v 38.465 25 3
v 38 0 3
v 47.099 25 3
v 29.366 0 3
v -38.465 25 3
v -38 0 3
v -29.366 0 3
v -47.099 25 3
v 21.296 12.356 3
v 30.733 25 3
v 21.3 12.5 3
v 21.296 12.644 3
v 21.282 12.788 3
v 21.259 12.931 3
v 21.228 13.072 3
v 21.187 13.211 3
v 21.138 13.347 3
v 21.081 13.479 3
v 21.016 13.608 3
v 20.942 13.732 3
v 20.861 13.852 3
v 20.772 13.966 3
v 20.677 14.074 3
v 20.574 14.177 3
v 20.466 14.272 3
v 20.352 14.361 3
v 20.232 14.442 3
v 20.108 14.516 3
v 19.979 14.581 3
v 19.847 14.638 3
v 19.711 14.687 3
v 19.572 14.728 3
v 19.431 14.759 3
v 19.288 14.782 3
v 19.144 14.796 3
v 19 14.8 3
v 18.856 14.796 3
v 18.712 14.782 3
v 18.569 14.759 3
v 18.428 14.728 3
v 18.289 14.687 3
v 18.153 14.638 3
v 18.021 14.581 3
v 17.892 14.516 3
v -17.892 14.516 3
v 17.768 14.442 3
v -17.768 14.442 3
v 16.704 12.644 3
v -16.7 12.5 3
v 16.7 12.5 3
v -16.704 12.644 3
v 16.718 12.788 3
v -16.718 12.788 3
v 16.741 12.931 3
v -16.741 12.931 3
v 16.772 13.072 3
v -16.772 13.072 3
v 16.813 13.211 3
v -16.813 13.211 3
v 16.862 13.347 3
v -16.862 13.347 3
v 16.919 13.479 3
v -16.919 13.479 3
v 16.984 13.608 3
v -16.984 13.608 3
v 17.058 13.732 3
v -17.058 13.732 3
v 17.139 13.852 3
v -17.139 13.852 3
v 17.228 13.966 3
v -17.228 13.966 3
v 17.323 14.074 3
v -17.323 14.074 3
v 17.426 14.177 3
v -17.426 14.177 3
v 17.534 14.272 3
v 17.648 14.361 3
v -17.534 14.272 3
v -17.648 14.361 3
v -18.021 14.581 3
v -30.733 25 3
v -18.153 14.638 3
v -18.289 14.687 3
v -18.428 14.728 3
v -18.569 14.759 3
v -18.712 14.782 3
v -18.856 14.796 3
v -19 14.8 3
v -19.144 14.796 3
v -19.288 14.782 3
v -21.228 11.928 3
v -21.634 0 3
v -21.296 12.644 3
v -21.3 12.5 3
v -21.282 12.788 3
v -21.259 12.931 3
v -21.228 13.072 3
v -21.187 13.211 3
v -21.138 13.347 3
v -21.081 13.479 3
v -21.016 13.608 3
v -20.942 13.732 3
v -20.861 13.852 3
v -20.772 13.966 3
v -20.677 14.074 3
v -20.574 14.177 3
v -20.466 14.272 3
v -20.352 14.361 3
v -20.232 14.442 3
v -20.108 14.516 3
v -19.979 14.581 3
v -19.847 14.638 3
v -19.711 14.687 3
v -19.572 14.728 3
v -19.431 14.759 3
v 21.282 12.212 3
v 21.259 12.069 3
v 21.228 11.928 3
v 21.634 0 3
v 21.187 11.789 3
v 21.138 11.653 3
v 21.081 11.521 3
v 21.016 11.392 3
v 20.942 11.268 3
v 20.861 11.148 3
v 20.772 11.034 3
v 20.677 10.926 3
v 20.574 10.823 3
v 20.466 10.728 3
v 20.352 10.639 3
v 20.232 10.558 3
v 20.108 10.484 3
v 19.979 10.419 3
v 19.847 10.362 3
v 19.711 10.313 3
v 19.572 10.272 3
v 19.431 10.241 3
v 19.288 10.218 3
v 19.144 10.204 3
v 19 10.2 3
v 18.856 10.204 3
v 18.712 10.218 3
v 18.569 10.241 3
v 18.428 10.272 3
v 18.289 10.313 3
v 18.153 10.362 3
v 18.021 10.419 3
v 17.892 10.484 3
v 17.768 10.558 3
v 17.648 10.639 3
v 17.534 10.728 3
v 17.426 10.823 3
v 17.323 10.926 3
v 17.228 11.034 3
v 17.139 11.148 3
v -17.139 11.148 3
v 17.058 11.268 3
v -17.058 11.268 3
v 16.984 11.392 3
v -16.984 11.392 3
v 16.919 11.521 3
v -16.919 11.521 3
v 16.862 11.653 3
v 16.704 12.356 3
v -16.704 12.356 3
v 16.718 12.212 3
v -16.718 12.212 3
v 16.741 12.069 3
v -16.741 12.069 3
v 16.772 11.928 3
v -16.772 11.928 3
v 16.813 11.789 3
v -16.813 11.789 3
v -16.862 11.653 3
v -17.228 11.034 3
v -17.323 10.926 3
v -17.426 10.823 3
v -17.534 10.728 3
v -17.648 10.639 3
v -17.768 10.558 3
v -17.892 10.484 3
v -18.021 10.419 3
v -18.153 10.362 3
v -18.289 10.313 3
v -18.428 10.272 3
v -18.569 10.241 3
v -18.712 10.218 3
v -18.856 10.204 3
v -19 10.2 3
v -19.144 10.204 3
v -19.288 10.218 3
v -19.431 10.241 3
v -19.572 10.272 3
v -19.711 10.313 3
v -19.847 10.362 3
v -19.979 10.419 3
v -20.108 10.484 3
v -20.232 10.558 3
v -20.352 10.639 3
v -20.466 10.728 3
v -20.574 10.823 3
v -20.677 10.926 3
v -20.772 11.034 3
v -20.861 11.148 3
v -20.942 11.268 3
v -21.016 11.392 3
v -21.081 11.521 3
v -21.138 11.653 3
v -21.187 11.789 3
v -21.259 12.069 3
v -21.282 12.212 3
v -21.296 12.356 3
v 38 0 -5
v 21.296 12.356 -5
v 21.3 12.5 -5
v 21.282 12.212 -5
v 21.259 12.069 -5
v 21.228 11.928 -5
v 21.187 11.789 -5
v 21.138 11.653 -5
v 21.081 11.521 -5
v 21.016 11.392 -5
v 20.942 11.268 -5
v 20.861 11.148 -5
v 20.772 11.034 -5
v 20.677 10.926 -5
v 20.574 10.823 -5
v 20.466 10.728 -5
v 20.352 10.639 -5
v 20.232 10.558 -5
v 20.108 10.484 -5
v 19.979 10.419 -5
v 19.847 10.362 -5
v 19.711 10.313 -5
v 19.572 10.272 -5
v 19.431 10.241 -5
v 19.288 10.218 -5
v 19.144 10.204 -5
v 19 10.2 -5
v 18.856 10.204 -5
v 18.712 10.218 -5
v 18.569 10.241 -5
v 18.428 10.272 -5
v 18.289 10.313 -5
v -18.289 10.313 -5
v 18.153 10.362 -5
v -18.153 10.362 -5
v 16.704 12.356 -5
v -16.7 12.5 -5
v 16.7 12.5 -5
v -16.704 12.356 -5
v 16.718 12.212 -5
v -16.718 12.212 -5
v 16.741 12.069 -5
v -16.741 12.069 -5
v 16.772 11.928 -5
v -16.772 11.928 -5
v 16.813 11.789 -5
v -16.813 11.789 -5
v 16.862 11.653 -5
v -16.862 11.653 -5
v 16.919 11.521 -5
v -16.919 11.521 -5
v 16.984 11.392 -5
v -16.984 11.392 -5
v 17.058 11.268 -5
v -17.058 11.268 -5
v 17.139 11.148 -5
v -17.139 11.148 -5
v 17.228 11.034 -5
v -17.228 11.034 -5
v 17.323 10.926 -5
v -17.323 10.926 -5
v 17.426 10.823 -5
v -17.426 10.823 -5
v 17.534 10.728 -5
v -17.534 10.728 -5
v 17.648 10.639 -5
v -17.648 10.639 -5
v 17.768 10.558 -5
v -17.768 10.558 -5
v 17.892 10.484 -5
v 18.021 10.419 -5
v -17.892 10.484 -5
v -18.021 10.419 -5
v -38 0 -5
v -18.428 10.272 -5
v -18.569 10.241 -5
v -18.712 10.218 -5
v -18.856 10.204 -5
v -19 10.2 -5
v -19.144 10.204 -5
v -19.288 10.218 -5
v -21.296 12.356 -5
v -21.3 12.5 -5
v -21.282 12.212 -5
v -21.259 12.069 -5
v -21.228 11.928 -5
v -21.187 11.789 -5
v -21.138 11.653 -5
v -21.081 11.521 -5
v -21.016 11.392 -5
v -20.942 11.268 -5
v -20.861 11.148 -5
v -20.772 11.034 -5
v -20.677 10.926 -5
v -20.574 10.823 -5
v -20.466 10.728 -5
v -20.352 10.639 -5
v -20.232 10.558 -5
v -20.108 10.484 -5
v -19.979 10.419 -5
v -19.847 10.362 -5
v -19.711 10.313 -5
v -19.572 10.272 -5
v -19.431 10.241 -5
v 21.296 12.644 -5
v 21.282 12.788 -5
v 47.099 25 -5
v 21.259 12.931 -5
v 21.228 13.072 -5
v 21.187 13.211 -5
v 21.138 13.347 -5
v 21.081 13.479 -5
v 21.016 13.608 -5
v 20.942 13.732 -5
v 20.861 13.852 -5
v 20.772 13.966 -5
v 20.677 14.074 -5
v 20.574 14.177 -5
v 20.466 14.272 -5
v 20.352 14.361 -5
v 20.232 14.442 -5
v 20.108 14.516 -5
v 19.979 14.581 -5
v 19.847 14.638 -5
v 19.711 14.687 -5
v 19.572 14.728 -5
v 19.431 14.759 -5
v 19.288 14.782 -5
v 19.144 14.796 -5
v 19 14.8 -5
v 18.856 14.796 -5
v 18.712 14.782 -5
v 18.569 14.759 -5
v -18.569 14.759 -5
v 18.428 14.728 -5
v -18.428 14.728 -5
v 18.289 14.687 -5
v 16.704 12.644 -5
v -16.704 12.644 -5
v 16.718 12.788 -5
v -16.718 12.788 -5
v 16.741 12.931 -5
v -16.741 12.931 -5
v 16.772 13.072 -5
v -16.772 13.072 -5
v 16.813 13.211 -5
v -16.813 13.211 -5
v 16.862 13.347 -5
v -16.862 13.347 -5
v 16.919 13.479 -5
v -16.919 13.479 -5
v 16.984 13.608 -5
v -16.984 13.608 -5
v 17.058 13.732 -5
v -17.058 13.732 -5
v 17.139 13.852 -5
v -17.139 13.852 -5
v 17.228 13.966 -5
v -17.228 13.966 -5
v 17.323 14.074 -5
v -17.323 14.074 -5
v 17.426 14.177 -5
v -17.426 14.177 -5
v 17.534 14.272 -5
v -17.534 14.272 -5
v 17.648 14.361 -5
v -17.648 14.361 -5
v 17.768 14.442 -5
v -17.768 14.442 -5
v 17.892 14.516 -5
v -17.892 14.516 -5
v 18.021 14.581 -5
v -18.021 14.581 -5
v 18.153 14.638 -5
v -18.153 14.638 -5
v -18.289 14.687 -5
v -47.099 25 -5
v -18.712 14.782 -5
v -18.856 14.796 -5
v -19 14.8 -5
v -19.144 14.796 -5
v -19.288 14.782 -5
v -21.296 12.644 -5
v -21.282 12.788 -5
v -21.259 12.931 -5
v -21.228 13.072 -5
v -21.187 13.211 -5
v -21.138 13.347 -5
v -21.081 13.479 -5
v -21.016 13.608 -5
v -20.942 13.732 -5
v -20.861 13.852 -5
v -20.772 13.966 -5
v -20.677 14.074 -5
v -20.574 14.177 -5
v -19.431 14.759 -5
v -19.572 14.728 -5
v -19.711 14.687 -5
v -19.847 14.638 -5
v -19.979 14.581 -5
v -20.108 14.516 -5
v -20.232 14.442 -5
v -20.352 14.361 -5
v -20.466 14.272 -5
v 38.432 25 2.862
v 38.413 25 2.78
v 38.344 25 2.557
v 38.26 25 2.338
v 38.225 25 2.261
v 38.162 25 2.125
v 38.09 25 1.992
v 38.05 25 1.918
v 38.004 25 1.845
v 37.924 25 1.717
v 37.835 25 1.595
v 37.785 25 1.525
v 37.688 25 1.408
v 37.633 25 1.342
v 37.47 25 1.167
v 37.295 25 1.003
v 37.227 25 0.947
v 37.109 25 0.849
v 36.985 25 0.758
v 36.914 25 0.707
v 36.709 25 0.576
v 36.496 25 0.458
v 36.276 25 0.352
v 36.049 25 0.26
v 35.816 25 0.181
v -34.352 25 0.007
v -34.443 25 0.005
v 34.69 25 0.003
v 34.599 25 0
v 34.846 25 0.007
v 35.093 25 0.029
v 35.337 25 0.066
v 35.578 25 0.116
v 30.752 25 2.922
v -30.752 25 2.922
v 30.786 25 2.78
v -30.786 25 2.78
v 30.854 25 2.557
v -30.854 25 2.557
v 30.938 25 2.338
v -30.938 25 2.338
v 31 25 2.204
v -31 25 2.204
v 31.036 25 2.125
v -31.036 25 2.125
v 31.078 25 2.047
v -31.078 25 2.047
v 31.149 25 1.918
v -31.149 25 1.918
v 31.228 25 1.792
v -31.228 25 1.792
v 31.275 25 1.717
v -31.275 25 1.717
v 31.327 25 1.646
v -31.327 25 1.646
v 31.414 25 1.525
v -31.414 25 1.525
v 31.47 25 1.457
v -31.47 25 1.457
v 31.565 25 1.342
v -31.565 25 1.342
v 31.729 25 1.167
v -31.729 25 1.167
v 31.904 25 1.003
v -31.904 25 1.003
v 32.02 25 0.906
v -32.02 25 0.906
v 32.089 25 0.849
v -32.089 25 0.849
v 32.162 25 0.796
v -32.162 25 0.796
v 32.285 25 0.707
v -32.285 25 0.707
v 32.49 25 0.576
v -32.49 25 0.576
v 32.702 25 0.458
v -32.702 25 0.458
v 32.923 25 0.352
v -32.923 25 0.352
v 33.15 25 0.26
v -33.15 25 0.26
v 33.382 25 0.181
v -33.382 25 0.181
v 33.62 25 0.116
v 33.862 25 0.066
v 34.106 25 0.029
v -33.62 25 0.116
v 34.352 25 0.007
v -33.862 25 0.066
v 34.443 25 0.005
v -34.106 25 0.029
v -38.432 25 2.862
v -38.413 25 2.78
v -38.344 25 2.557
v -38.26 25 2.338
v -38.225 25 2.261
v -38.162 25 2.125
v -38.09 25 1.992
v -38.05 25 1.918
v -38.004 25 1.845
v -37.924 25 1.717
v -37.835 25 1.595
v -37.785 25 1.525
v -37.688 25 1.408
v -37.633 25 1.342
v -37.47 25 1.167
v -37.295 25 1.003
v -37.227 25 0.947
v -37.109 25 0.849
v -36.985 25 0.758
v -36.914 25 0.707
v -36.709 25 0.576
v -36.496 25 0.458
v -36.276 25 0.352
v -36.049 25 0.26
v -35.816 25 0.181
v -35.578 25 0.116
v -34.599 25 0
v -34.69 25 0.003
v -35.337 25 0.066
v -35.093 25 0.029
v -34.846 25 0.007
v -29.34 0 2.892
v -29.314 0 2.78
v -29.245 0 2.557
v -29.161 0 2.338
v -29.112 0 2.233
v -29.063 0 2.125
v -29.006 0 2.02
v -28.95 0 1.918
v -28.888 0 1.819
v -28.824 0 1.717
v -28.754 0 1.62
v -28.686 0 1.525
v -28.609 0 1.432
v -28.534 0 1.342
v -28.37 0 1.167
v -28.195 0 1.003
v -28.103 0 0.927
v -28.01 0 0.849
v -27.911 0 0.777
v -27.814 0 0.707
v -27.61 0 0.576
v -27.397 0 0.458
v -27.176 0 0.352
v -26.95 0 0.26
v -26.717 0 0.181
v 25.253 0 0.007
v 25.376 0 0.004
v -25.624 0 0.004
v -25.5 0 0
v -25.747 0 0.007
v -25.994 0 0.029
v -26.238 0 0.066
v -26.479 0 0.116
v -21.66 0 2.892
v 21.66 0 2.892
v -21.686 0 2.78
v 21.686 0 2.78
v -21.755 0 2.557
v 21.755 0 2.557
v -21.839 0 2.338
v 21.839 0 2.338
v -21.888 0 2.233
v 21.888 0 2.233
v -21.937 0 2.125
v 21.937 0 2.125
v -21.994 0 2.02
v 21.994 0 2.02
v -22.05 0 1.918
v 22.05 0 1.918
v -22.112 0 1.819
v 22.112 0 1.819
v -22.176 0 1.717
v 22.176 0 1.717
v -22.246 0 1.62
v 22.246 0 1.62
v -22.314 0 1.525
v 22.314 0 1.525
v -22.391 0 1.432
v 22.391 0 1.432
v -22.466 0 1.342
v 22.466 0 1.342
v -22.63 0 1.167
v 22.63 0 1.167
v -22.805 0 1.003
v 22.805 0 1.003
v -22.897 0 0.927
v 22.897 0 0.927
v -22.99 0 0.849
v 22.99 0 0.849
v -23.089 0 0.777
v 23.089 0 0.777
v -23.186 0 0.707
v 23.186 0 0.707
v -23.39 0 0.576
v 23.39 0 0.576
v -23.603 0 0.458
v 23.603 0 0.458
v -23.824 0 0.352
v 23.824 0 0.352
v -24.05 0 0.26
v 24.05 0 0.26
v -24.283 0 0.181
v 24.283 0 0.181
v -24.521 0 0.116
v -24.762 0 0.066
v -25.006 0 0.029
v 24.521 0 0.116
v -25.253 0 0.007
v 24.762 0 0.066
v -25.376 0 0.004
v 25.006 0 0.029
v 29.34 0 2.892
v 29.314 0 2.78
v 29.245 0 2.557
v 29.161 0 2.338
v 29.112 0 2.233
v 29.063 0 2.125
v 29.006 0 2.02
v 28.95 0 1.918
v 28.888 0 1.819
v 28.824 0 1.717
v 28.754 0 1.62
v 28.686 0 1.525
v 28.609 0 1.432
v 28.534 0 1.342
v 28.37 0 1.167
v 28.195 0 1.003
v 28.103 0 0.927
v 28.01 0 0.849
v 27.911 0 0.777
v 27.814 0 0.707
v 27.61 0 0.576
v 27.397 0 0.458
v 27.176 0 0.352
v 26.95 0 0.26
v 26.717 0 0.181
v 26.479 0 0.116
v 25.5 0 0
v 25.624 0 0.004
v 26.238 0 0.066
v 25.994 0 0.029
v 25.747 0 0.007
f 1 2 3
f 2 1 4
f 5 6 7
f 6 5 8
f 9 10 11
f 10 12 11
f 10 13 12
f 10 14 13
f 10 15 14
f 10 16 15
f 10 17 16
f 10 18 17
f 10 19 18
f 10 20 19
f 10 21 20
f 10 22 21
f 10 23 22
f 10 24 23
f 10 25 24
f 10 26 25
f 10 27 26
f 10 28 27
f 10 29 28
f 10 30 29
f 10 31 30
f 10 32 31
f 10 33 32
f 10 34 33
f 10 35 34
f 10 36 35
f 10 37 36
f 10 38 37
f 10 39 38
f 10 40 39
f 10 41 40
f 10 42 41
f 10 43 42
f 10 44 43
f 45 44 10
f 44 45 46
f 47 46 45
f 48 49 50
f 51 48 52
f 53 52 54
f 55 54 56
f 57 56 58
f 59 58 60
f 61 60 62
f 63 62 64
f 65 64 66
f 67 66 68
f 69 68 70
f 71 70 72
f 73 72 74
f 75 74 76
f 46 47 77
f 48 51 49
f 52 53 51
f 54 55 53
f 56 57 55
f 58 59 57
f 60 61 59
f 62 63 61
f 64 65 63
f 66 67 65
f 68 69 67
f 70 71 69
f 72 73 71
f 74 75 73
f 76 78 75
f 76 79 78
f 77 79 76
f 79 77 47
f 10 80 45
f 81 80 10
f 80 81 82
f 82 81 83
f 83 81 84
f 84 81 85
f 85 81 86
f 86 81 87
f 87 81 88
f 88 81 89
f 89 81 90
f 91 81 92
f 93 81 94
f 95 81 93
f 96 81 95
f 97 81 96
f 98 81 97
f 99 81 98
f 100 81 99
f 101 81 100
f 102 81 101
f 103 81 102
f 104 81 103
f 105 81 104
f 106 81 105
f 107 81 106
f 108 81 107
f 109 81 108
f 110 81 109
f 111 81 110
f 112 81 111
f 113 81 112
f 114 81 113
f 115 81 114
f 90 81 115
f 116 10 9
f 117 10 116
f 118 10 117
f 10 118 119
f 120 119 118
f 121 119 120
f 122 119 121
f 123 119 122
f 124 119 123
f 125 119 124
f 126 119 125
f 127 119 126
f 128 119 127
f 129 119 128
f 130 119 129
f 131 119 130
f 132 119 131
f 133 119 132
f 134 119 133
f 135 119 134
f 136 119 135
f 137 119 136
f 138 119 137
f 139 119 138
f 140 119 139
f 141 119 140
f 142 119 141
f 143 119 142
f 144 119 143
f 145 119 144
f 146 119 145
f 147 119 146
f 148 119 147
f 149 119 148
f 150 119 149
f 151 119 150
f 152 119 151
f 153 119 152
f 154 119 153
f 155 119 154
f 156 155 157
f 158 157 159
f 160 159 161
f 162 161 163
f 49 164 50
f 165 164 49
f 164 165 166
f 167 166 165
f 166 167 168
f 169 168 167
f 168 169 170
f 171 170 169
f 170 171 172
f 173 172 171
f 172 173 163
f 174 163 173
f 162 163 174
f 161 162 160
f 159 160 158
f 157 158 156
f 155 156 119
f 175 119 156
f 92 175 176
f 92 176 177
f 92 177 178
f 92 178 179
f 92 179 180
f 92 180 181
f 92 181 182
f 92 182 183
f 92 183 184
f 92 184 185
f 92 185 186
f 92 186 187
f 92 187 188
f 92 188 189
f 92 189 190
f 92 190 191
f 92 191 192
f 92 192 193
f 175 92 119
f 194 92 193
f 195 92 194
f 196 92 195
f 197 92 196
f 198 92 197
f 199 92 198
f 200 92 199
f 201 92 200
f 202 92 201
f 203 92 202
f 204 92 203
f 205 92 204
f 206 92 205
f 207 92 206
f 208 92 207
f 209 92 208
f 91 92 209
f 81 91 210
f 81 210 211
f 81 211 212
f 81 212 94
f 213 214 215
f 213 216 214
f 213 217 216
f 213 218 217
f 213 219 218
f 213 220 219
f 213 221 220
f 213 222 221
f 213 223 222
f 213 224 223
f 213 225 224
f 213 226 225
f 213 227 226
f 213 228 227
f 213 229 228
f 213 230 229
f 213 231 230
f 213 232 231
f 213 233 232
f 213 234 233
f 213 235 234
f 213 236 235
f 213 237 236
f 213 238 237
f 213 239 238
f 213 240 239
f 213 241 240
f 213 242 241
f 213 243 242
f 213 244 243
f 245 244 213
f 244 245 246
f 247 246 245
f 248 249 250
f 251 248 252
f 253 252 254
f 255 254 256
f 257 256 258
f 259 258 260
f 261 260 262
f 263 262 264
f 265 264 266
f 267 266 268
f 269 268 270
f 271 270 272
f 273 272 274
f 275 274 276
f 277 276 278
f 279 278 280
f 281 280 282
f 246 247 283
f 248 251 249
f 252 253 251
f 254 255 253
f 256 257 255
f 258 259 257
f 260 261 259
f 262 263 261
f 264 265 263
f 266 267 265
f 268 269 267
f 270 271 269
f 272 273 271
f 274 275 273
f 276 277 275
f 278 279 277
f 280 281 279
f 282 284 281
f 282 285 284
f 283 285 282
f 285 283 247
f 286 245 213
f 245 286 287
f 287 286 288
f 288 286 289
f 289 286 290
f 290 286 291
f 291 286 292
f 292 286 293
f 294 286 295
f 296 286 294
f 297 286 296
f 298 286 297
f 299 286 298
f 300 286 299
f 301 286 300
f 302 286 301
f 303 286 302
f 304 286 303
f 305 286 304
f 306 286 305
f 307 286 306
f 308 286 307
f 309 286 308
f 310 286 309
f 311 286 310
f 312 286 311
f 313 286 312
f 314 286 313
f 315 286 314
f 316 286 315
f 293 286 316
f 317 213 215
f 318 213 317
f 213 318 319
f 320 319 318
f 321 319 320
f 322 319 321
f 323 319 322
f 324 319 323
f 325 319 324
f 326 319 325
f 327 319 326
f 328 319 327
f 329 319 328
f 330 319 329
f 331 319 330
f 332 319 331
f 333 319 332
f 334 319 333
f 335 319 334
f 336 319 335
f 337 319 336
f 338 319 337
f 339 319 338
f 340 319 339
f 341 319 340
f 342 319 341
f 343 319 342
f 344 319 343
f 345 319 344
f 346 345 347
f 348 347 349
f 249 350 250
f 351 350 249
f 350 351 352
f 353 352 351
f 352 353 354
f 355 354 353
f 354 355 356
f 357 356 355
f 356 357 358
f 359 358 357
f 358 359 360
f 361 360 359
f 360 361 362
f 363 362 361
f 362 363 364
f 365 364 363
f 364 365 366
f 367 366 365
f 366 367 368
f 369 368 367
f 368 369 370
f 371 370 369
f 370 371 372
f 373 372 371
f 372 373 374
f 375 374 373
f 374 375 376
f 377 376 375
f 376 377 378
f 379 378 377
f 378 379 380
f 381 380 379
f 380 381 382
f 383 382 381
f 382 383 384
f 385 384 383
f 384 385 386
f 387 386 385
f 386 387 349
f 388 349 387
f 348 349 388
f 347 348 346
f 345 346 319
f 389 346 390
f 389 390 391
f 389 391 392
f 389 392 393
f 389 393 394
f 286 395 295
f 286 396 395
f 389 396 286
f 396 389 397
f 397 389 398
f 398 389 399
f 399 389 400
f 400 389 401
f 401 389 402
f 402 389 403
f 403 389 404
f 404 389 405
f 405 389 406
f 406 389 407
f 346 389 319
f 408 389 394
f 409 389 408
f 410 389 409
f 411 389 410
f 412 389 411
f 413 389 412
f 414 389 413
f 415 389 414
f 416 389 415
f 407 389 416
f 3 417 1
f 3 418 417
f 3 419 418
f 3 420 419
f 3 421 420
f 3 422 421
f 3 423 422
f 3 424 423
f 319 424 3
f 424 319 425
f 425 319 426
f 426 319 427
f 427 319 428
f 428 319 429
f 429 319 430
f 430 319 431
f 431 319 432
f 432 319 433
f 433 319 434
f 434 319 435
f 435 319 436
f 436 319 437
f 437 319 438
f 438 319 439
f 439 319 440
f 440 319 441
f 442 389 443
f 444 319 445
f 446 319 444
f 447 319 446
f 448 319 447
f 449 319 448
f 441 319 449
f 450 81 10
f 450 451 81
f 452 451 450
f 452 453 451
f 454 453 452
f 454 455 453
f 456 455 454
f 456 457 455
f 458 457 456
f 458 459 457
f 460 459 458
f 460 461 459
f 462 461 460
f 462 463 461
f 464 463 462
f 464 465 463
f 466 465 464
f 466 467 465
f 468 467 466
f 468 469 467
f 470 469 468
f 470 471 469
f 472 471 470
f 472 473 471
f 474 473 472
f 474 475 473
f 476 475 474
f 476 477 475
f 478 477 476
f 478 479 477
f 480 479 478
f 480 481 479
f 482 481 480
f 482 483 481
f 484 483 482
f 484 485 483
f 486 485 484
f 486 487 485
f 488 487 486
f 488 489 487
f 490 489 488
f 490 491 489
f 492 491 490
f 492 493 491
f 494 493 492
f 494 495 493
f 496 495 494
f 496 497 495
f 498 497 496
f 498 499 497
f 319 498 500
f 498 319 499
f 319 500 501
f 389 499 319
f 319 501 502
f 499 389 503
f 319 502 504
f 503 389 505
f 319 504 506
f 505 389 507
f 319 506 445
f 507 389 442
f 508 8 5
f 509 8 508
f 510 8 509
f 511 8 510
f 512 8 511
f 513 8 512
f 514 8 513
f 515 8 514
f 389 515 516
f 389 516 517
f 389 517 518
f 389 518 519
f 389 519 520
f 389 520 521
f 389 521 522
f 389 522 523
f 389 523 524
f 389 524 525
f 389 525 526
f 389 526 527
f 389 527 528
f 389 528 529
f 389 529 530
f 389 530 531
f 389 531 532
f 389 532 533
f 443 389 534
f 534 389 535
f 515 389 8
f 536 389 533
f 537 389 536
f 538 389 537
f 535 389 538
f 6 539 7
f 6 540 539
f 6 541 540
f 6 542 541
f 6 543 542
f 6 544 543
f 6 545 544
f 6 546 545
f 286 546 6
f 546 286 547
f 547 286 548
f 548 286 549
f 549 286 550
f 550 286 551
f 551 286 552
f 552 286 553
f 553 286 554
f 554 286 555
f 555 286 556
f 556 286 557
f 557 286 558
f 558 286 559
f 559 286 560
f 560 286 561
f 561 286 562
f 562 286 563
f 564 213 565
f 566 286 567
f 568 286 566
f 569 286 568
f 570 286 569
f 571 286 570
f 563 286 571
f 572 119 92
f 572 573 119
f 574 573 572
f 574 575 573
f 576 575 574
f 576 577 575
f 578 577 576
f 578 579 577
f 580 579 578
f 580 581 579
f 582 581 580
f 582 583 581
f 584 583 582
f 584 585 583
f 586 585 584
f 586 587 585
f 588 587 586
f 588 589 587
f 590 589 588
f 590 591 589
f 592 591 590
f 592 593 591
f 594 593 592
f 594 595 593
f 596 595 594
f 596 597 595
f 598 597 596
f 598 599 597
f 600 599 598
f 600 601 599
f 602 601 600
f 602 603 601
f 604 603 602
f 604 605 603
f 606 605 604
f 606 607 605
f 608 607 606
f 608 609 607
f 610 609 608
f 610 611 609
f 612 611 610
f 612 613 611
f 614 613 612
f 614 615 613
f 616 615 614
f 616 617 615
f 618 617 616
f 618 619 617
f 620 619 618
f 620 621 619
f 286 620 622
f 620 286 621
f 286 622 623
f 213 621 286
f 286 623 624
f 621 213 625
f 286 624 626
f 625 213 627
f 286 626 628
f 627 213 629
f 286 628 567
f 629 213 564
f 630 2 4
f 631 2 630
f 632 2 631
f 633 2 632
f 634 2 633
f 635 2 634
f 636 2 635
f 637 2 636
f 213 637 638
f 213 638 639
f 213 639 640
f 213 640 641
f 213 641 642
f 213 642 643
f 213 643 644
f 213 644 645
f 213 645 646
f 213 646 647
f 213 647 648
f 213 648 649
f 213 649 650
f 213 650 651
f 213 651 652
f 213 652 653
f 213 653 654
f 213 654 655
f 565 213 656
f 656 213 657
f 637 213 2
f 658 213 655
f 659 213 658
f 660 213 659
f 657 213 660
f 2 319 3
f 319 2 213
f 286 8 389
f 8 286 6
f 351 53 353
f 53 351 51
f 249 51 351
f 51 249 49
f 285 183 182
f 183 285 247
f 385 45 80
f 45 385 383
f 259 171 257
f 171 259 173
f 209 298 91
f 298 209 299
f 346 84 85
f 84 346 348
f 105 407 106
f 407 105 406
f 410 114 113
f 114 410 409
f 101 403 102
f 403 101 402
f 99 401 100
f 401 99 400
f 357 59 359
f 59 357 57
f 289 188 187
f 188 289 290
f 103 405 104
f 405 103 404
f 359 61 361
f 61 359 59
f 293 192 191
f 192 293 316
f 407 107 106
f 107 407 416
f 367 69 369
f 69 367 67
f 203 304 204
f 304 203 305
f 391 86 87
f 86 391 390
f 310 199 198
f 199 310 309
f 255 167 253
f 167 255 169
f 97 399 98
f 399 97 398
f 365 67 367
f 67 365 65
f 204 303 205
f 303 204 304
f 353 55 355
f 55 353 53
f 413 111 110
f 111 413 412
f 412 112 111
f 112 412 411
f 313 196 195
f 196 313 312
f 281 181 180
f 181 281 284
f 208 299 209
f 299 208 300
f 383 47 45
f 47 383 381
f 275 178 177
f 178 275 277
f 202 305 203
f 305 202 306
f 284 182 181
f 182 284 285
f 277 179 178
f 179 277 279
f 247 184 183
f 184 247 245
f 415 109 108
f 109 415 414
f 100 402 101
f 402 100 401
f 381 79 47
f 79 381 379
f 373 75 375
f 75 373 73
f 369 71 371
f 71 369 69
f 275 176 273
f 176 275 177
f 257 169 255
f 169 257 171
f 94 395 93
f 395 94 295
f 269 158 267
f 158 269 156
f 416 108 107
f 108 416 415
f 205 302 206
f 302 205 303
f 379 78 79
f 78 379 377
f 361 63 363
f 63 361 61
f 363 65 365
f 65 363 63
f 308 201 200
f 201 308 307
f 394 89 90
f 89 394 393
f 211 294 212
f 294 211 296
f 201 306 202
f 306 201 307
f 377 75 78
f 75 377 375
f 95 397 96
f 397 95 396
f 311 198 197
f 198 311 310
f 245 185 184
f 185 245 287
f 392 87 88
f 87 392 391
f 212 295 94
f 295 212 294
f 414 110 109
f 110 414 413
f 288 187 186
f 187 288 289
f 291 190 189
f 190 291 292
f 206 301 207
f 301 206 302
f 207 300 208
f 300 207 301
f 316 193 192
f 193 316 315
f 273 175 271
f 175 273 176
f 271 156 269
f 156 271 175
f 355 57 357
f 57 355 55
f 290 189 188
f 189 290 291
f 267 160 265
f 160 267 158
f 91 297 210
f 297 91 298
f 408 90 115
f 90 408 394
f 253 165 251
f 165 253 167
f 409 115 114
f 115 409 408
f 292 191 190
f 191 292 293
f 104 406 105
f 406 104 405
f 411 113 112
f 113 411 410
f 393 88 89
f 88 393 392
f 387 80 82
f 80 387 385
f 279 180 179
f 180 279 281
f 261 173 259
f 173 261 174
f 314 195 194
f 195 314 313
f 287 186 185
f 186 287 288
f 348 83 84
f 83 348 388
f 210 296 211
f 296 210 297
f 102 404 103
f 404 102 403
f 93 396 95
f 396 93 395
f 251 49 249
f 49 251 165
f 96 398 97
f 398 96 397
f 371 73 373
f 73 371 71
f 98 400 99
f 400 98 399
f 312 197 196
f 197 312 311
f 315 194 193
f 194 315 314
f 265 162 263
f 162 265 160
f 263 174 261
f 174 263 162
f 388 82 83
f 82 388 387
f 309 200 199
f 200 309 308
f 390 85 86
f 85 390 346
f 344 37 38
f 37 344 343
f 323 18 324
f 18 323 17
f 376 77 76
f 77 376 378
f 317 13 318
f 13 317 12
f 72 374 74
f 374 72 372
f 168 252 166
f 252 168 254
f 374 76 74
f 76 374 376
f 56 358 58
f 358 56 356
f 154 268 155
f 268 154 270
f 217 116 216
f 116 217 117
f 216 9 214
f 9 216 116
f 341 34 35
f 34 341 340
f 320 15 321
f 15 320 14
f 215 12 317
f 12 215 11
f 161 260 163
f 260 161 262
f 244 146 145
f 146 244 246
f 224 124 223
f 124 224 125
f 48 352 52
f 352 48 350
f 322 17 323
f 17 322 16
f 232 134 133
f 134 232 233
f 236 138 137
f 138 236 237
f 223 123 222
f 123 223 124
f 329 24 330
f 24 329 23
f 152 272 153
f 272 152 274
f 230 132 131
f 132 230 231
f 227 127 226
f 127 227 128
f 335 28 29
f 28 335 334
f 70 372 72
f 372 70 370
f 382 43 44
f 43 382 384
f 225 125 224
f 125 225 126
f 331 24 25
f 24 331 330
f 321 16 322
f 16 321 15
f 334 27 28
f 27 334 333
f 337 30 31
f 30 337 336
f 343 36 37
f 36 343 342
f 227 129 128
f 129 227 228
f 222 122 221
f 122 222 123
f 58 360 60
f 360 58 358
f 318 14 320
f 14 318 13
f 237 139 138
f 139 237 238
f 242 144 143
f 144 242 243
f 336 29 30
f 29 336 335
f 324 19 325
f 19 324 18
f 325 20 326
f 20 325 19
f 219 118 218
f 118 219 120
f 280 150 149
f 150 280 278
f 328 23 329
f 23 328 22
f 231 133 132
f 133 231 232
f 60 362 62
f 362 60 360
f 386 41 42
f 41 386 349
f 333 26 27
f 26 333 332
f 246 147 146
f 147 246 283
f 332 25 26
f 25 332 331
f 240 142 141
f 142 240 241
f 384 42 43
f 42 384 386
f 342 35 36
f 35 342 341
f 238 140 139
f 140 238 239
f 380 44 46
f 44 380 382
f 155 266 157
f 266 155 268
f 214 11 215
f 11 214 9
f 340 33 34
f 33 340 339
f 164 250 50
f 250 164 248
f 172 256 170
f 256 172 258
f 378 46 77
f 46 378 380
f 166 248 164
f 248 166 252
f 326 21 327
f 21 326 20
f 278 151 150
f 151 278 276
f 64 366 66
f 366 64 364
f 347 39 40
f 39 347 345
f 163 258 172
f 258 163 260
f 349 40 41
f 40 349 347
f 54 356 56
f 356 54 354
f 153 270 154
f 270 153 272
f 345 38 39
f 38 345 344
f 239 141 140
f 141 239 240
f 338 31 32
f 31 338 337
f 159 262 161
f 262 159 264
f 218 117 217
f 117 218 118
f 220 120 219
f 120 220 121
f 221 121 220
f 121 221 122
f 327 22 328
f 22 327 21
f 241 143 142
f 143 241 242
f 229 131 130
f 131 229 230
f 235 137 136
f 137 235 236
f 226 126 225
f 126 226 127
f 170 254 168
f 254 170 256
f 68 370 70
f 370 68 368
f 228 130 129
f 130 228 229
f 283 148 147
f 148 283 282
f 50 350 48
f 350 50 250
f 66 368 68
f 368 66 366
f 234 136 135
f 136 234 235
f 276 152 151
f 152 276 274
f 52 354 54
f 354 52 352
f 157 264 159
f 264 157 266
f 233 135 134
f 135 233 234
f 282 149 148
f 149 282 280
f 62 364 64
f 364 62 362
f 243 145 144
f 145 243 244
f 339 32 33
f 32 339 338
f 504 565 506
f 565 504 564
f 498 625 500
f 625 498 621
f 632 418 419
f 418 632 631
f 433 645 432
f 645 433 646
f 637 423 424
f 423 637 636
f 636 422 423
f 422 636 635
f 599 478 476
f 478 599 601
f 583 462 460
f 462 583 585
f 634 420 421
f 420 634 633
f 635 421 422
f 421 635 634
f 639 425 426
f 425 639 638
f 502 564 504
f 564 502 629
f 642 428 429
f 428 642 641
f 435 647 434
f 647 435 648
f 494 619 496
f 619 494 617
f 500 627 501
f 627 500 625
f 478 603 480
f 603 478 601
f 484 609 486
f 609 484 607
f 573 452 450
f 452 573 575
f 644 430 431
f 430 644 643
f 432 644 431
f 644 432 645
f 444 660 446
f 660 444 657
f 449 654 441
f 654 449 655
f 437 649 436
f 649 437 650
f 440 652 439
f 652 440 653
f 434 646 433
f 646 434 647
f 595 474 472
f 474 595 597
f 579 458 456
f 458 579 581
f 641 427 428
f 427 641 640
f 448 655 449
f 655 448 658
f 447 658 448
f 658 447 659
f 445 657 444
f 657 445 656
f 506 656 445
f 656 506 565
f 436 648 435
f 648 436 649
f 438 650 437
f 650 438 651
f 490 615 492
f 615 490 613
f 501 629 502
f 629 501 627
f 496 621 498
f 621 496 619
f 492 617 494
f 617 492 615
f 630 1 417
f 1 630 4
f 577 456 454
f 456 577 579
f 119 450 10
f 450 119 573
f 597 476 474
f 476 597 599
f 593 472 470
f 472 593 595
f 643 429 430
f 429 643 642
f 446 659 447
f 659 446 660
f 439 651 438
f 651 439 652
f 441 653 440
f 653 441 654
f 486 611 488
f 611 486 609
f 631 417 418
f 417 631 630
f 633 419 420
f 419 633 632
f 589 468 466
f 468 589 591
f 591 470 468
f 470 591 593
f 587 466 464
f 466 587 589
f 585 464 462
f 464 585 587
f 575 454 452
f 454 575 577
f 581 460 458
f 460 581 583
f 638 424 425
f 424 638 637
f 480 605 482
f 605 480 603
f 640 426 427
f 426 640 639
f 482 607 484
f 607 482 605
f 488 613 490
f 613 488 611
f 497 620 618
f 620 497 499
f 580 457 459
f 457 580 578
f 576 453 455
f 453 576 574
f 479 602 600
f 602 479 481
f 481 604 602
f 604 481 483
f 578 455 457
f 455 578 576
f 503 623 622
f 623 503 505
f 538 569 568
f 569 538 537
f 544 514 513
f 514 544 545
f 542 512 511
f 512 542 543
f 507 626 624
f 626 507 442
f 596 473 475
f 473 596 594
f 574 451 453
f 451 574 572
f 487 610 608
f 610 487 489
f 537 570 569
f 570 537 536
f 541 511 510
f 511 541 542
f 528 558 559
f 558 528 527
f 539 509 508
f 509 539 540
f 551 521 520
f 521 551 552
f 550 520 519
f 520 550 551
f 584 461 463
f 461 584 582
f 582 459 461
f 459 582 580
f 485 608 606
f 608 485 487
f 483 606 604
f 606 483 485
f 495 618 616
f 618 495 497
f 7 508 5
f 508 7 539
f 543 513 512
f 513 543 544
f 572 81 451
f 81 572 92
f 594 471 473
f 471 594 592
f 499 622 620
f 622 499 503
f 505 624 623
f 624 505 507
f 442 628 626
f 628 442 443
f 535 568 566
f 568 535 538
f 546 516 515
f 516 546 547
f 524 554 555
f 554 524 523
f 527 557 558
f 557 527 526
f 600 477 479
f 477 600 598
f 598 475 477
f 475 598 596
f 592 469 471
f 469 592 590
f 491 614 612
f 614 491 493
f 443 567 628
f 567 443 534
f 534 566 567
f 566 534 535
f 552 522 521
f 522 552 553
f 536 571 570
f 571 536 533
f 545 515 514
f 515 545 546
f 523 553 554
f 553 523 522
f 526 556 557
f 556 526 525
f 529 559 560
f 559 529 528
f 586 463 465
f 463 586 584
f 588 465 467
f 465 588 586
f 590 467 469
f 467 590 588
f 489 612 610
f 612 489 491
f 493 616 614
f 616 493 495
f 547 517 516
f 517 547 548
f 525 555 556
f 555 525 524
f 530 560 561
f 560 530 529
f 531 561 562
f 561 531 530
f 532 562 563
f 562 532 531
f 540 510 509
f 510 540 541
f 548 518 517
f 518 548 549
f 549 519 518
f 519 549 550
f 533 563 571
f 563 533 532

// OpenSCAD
width = 51;
size = 25;
margen = 10;

r_tube = 3.7;
hole = 2.3;
angle = 20;
gap = 0.7;

length = 62;
th = 5;

realy_big = 200;

$fn = 100;
difference(){
    translate([-realy_big/2, 0, -th]) cube([realy_big, size, th + r_tube - gap]);
    
    translate([width/2 + size/2, 0, -th]) rotate([0, 0, -angle]) cube([realy_big, realy_big, th + r_tube - gap]);
    mirror([1, 0, 0]) translate([width/2 + size/2, 0, -th]) rotate([0, 0, -angle]) cube([realy_big, realy_big, th + r_tube - gap]);
    
    translate([-width/4 - size/4, size/2, -th]) cylinder(th + r_tube - gap, hole, hole);
    translate([width/4 + size/4, size/2, -th]) cylinder(th + r_tube - gap, hole, hole);
    
    translate([width/2, 0, r_tube]) rotate([0, 0, -angle]) rotate([-90, 0, 0]) cylinder(realy_big, r_tube, r_tube, center=true);
    translate([-width/2, 0, r_tube]) rotate([0, 0, angle]) rotate([-90, 0, 0]) cylinder(realy_big, r_tube, r_tube, center=true);
}
